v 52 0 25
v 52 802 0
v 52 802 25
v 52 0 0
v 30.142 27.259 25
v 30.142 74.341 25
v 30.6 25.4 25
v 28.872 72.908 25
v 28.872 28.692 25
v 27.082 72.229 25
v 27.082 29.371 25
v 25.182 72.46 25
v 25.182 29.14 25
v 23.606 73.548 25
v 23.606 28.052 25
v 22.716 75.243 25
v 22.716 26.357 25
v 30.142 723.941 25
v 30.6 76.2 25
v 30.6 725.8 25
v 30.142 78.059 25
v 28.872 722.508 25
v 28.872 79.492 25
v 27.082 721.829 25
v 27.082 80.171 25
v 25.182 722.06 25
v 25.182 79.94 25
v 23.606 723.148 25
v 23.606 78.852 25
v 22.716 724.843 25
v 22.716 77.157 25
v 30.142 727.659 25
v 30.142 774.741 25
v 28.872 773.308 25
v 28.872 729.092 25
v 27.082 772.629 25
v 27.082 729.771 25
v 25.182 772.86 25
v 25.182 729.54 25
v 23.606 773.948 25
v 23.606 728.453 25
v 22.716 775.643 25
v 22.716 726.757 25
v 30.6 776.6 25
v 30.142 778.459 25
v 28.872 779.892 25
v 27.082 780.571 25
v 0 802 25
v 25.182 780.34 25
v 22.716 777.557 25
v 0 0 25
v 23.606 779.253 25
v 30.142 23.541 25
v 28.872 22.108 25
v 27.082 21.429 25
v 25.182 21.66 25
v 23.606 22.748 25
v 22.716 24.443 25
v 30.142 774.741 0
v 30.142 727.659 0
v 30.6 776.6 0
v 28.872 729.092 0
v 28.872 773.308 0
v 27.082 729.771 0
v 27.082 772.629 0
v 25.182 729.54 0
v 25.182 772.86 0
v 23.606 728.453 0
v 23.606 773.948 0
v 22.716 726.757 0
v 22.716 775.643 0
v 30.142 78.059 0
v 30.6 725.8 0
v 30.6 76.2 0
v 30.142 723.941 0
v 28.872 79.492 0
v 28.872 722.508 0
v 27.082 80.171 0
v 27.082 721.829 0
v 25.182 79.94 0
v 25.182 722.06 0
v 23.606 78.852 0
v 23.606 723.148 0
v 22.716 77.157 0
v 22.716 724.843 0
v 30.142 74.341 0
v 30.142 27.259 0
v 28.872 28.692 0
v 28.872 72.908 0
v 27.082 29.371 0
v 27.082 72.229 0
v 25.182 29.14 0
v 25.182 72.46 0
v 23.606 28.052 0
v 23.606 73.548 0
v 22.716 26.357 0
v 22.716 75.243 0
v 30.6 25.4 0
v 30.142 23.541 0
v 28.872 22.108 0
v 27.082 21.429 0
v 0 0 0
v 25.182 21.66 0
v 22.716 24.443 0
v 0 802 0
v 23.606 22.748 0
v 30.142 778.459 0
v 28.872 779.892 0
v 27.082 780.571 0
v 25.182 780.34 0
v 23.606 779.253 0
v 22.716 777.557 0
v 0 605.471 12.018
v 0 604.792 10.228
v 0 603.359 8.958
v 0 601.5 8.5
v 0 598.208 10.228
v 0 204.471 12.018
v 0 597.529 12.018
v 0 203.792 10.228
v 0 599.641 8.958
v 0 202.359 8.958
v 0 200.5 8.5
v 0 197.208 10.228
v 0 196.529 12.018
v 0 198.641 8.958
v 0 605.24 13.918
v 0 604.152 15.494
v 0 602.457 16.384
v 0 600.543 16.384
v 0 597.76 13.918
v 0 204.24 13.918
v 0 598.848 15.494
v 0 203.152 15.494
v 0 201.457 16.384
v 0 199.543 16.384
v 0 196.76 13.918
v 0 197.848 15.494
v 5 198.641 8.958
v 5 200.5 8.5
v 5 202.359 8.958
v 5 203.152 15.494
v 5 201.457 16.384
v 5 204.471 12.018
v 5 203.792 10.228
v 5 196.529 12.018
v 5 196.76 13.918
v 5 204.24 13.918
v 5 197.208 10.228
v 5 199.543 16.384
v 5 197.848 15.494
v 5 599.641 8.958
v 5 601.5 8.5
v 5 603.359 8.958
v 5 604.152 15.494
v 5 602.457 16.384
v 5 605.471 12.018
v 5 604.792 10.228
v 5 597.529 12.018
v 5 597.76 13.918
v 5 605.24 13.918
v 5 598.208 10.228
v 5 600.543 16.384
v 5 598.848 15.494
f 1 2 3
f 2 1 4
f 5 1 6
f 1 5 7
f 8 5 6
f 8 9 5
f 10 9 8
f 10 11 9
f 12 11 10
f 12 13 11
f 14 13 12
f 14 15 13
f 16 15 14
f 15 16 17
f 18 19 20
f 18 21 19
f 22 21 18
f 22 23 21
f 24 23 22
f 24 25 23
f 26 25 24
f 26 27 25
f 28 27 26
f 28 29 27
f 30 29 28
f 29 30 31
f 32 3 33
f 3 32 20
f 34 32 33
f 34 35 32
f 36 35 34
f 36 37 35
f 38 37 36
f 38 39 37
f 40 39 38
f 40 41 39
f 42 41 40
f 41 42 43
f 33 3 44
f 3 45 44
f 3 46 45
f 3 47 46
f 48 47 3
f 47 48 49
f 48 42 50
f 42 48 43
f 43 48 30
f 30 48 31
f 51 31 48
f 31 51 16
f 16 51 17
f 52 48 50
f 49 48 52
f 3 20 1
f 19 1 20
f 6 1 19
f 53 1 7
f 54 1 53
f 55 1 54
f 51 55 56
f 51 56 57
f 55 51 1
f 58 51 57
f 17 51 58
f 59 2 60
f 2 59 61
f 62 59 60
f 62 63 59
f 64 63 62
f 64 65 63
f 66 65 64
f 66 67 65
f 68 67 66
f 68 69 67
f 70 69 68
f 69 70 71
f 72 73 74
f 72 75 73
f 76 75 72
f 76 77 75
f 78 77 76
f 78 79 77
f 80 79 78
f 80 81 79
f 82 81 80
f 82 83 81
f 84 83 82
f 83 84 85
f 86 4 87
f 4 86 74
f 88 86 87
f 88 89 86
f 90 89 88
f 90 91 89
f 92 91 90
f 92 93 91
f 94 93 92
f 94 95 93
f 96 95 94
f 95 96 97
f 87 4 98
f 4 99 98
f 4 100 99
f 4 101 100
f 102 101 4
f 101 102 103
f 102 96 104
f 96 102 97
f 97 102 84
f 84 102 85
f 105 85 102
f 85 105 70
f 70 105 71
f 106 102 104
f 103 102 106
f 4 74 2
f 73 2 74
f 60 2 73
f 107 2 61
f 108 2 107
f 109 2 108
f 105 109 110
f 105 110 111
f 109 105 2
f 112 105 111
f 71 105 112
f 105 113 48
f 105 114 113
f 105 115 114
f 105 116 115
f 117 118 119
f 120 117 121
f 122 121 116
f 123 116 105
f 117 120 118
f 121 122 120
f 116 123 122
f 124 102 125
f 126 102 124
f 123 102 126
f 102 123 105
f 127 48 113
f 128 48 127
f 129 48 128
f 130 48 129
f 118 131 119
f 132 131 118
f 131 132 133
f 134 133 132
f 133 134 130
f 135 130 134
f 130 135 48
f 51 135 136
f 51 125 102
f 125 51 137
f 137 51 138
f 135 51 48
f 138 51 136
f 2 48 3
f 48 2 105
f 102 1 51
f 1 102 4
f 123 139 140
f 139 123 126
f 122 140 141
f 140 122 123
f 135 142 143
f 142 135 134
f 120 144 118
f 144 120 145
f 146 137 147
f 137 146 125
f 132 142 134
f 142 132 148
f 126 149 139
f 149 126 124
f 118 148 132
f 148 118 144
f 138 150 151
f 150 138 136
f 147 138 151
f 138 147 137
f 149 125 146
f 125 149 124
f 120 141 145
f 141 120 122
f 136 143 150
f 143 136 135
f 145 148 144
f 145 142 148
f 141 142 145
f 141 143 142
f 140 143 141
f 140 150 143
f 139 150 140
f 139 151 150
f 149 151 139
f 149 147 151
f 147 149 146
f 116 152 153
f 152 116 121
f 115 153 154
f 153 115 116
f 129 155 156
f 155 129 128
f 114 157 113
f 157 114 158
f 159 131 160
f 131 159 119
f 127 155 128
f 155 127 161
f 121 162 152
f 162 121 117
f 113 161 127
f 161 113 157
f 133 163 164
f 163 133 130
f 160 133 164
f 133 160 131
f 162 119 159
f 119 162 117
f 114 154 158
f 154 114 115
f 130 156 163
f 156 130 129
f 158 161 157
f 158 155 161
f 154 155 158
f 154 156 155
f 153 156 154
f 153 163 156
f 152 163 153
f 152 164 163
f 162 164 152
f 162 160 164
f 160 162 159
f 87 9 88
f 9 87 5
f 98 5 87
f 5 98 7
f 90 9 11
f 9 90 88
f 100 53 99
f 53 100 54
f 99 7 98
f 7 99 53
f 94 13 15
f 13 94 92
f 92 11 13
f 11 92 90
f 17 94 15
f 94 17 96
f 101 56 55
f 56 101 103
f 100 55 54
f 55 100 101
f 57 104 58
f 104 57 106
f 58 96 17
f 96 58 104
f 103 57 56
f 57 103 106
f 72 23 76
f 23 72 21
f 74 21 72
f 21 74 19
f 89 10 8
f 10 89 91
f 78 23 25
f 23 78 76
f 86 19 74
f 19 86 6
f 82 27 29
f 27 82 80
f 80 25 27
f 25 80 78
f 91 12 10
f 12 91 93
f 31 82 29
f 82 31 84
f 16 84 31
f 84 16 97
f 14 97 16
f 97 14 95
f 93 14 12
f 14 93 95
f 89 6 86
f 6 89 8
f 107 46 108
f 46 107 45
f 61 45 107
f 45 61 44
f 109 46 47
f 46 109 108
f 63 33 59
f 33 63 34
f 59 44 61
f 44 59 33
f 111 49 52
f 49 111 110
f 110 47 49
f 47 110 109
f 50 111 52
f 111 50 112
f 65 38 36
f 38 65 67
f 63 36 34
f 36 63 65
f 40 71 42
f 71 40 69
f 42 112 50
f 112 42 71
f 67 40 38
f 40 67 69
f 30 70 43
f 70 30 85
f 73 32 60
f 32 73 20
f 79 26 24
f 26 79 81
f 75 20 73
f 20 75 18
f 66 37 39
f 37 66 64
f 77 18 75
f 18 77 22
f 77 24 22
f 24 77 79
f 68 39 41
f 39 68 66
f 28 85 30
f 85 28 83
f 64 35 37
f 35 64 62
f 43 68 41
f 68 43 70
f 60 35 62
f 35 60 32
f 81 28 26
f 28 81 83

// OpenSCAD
// file: dimensions.scad
// Shared dimensions for SV08 Max Table Components
// Include this file in all component SCAD files

// Convert inches to mm
inch = 25.4;

// Table dimensions
table_width = 802;  // mm
table_depth = 802;  // mm
table_height = 463; // mm (desk height - printer bed at ~30" from floor)

// Component dimensions
leg_size = 4 * inch;          // 4x4 inch legs (101.6mm)
rail_thickness = 30;          // mm (printable thickness)
rail_width = 80;              // mm (printable width)
top_thickness = 25;           // mm

// Connection system dimensions
bolt_hole_diameter = 8;       // M8 bolts
counterbore_diameter = 16;    // For bolt heads
counterbore_depth = 10;       // mm

// Rail heights
bottom_rail_height = 200;     // mm
mid_rail_height = 250;        // mm
top_rail_height = table_height - top_thickness - rail_width; // Calculated

// Calculated rail lengths
long_rail_length = table_width - 2 * leg_size;   // 599mm
short_rail_length = table_depth - 2 * leg_size;  // 599mm

// Table top segment dimensions
segment_width = 150;          // mm
segment_depth = table_depth;  // 802mm
final_segment_width = 52;     // mm (to complete 802mm total width)

// Alignment pin dimensions
pin_diameter = 7.8;           // mm (slightly undersized for press fit)
pin_length = 15;              // mm
pin_hole_diameter = 8;        // mm
// main file
// SV08 Max Table Top Final Segment Component (narrow)
include <dimensions.scad>

module top_segment(seg_width, seg_depth) {
    difference() {
        cube([seg_width, seg_depth, top_thickness]);

        // Alignment pin sockets (on left edge)
        translate([-5, seg_depth/4, top_thickness/2])
            rotate([0, 90, 0])
            cylinder(d=pin_hole_diameter, h=10);
        translate([-5, 3*seg_depth/4, top_thickness/2])
            rotate([0, 90, 0])
            cylinder(d=pin_hole_diameter, h=10);

        // Mounting holes for right legs
        // Front right leg area
        translate([seg_width - leg_size + leg_size/4, leg_size/4, 0])
            cylinder(d=bolt_hole_diameter, h=top_thickness);
        translate([seg_width - leg_size + 3*leg_size/4, leg_size/4, 0])
            cylinder(d=bolt_hole_diameter, h=top_thickness);
        translate([seg_width - leg_size + leg_size/4, 3*leg_size/4, 0])
            cylinder(d=bolt_hole_diameter, h=top_thickness);
        translate([seg_width - leg_size + 3*leg_size/4, 3*leg_size/4, 0])
            cylinder(d=bolt_hole_diameter, h=top_thickness);

        // Back right leg area
        translate([seg_width - leg_size + leg_size/4, seg_depth - leg_size/4, 0])
            cylinder(d=bolt_hole_diameter, h=top_thickness);
        translate([seg_width - leg_size + 3*leg_size/4, seg_depth - leg_size/4, 0])
            cylinder(d=bolt_hole_diameter, h=top_thickness);
        translate([seg_width - leg_size + leg_size/4, seg_depth - 3*leg_size/4, 0])
            cylinder(d=bolt_hole_diameter, h=top_thickness);
        translate([seg_width - leg_size + 3*leg_size/4, seg_depth - 3*leg_size/4, 0])
            cylinder(d=bolt_hole_diameter, h=top_thickness);
    }
}

// Generate final narrow segment for STL export
top_segment(final_segment_width, segment_depth);
